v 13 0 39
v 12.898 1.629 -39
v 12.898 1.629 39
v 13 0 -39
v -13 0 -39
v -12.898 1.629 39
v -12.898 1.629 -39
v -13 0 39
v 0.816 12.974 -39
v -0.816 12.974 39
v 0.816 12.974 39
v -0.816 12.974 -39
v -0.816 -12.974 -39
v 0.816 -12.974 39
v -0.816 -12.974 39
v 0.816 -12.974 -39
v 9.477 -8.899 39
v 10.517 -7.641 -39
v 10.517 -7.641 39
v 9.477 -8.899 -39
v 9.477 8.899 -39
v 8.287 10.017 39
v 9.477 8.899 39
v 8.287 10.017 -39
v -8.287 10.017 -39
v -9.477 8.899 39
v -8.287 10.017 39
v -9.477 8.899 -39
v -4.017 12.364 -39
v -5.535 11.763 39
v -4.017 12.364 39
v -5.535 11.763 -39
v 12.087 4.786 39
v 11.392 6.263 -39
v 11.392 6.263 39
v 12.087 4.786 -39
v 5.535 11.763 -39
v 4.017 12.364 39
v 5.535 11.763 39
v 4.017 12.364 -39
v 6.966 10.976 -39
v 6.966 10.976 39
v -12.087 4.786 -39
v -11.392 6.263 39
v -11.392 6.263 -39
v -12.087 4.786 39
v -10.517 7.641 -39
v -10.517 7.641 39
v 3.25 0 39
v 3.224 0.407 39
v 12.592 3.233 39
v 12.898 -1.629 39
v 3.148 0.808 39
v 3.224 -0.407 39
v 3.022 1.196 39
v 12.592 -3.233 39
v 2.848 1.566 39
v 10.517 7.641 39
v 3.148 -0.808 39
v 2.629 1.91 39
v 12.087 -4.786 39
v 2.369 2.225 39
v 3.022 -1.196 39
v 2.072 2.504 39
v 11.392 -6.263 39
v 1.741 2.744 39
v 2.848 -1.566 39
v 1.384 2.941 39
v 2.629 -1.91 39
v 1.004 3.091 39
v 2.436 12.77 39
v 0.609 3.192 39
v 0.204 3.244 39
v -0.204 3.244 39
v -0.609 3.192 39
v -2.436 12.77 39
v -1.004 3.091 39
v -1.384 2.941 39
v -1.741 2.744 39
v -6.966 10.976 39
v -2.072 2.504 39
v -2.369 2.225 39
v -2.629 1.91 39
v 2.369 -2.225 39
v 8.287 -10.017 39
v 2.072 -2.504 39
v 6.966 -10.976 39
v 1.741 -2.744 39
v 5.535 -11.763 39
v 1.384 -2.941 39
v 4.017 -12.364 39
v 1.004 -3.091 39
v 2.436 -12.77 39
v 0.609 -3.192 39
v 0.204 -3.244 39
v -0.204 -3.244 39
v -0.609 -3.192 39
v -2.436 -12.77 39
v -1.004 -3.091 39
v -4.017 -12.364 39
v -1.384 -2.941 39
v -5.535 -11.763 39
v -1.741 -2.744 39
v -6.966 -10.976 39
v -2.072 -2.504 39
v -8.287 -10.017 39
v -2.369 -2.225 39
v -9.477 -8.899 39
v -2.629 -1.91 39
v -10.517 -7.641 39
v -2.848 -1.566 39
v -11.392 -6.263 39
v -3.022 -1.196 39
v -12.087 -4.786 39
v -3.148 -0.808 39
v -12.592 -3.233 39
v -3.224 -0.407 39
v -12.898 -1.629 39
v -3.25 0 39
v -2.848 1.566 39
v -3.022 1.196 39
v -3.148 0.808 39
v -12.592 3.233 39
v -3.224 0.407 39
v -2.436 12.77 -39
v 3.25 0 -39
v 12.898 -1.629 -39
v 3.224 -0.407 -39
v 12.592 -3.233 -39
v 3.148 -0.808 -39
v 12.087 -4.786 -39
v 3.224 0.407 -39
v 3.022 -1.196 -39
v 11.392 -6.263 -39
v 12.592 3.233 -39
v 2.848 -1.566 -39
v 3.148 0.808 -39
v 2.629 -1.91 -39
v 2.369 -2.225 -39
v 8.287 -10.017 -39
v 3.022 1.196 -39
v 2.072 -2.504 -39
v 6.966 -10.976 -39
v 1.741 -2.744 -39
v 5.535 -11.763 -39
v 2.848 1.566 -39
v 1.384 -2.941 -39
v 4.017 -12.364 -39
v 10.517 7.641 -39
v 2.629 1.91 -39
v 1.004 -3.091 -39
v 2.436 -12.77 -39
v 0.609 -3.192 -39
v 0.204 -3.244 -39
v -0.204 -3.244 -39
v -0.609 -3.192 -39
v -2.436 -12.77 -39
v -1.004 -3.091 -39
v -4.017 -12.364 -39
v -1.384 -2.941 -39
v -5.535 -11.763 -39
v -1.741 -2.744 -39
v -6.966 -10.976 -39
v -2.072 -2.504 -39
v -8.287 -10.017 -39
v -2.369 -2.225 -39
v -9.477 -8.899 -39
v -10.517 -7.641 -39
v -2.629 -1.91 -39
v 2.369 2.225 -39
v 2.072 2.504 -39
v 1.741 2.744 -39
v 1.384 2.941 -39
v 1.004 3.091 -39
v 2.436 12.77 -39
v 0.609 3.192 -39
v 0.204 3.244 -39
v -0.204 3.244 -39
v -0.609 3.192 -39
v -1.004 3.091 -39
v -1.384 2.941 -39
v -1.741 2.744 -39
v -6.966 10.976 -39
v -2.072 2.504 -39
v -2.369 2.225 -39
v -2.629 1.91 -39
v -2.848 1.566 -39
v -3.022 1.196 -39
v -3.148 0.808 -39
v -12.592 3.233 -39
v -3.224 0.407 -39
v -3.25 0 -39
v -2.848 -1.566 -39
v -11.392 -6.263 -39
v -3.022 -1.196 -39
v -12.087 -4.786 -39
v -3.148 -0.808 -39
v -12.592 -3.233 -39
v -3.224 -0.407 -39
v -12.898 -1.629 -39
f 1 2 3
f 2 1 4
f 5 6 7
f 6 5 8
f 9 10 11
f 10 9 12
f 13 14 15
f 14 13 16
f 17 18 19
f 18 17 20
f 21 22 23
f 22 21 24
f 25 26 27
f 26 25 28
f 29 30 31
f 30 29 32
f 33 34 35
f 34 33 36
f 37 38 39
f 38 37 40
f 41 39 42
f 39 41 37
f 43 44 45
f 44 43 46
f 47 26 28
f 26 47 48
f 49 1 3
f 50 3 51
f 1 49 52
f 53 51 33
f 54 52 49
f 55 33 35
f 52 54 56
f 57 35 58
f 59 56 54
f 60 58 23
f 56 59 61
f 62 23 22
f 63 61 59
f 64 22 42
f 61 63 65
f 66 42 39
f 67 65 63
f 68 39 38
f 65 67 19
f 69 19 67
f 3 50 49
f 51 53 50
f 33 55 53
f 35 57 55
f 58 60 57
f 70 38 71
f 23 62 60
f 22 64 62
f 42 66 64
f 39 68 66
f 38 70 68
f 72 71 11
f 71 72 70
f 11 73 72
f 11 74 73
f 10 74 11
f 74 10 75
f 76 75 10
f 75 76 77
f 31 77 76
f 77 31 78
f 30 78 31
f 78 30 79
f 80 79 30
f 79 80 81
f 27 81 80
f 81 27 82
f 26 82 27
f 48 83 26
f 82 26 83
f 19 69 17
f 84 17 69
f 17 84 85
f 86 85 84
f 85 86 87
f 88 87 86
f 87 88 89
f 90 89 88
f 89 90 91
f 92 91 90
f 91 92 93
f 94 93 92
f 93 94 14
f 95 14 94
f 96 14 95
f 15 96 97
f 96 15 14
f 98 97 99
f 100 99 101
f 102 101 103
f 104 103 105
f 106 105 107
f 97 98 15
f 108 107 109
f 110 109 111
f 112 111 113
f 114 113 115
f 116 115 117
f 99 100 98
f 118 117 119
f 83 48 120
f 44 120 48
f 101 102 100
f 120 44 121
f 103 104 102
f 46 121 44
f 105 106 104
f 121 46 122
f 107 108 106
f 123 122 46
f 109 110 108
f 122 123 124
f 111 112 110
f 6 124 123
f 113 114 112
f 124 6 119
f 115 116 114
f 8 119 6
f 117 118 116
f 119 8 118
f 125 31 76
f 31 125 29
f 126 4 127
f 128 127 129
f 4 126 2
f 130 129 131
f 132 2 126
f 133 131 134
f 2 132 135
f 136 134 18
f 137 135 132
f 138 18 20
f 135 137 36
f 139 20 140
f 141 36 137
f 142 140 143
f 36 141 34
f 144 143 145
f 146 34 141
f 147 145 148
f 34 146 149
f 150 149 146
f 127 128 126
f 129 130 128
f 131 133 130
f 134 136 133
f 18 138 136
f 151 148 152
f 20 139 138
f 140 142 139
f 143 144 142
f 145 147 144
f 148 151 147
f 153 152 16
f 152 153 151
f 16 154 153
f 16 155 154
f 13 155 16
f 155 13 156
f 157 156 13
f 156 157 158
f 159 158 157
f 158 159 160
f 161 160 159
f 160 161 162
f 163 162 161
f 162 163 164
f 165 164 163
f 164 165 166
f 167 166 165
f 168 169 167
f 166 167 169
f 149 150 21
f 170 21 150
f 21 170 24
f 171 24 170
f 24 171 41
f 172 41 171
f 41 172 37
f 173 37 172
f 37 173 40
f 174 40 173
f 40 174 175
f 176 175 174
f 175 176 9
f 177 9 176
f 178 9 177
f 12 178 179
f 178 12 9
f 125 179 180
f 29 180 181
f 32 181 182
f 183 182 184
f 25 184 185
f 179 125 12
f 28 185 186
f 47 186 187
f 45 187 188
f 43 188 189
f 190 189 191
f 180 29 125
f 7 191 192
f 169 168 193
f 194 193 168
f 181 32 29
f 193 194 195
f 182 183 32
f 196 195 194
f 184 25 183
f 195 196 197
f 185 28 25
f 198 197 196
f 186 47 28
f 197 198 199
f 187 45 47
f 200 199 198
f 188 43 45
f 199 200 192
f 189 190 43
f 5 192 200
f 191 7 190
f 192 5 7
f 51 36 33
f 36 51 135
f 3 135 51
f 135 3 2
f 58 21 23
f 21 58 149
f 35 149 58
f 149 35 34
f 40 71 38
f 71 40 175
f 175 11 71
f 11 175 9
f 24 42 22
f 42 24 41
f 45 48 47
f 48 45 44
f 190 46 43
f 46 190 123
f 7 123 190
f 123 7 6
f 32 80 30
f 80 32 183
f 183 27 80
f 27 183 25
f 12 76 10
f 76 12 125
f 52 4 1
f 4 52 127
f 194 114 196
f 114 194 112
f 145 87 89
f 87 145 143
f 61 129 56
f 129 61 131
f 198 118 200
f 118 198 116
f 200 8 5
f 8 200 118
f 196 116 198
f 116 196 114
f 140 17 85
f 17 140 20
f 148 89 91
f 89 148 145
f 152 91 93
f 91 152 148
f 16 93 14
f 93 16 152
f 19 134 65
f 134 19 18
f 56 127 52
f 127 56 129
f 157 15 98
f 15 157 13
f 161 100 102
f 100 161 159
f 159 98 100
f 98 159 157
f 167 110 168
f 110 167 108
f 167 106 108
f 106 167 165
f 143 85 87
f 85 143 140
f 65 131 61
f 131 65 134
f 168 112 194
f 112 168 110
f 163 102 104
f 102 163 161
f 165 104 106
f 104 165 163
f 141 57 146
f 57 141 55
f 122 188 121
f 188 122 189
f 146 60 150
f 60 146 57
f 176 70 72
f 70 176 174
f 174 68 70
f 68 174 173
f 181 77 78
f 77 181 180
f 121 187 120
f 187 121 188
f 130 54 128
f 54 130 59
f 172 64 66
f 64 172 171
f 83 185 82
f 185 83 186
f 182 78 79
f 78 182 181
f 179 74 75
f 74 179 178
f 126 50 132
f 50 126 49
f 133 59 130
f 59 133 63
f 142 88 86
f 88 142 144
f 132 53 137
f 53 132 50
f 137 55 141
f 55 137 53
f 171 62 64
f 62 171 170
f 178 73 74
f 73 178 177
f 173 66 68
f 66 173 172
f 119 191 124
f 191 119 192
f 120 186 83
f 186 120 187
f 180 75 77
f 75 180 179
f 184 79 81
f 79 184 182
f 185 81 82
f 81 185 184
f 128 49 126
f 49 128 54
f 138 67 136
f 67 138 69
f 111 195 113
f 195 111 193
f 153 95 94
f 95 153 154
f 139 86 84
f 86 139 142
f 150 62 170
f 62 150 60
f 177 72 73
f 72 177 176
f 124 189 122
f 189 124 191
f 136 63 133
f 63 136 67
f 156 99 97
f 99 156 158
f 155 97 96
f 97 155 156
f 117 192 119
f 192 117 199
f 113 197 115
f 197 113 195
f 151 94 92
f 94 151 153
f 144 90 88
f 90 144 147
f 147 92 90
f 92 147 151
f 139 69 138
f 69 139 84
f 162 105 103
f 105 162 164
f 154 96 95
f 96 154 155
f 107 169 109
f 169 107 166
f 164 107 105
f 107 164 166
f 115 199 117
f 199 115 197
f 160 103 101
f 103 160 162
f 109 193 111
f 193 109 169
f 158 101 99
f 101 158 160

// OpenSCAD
$fn = 50;


difference() {
	union() {
		translate(v = [0, 0, -39.0000000000]) {
			cylinder(h = 78, r = 13.0000000000);
		}
	}
	union() {
		translate(v = [0, 0, -100.0000000000]) {
			cylinder(h = 200, r = 3.2500000000);
		}
	}
}
